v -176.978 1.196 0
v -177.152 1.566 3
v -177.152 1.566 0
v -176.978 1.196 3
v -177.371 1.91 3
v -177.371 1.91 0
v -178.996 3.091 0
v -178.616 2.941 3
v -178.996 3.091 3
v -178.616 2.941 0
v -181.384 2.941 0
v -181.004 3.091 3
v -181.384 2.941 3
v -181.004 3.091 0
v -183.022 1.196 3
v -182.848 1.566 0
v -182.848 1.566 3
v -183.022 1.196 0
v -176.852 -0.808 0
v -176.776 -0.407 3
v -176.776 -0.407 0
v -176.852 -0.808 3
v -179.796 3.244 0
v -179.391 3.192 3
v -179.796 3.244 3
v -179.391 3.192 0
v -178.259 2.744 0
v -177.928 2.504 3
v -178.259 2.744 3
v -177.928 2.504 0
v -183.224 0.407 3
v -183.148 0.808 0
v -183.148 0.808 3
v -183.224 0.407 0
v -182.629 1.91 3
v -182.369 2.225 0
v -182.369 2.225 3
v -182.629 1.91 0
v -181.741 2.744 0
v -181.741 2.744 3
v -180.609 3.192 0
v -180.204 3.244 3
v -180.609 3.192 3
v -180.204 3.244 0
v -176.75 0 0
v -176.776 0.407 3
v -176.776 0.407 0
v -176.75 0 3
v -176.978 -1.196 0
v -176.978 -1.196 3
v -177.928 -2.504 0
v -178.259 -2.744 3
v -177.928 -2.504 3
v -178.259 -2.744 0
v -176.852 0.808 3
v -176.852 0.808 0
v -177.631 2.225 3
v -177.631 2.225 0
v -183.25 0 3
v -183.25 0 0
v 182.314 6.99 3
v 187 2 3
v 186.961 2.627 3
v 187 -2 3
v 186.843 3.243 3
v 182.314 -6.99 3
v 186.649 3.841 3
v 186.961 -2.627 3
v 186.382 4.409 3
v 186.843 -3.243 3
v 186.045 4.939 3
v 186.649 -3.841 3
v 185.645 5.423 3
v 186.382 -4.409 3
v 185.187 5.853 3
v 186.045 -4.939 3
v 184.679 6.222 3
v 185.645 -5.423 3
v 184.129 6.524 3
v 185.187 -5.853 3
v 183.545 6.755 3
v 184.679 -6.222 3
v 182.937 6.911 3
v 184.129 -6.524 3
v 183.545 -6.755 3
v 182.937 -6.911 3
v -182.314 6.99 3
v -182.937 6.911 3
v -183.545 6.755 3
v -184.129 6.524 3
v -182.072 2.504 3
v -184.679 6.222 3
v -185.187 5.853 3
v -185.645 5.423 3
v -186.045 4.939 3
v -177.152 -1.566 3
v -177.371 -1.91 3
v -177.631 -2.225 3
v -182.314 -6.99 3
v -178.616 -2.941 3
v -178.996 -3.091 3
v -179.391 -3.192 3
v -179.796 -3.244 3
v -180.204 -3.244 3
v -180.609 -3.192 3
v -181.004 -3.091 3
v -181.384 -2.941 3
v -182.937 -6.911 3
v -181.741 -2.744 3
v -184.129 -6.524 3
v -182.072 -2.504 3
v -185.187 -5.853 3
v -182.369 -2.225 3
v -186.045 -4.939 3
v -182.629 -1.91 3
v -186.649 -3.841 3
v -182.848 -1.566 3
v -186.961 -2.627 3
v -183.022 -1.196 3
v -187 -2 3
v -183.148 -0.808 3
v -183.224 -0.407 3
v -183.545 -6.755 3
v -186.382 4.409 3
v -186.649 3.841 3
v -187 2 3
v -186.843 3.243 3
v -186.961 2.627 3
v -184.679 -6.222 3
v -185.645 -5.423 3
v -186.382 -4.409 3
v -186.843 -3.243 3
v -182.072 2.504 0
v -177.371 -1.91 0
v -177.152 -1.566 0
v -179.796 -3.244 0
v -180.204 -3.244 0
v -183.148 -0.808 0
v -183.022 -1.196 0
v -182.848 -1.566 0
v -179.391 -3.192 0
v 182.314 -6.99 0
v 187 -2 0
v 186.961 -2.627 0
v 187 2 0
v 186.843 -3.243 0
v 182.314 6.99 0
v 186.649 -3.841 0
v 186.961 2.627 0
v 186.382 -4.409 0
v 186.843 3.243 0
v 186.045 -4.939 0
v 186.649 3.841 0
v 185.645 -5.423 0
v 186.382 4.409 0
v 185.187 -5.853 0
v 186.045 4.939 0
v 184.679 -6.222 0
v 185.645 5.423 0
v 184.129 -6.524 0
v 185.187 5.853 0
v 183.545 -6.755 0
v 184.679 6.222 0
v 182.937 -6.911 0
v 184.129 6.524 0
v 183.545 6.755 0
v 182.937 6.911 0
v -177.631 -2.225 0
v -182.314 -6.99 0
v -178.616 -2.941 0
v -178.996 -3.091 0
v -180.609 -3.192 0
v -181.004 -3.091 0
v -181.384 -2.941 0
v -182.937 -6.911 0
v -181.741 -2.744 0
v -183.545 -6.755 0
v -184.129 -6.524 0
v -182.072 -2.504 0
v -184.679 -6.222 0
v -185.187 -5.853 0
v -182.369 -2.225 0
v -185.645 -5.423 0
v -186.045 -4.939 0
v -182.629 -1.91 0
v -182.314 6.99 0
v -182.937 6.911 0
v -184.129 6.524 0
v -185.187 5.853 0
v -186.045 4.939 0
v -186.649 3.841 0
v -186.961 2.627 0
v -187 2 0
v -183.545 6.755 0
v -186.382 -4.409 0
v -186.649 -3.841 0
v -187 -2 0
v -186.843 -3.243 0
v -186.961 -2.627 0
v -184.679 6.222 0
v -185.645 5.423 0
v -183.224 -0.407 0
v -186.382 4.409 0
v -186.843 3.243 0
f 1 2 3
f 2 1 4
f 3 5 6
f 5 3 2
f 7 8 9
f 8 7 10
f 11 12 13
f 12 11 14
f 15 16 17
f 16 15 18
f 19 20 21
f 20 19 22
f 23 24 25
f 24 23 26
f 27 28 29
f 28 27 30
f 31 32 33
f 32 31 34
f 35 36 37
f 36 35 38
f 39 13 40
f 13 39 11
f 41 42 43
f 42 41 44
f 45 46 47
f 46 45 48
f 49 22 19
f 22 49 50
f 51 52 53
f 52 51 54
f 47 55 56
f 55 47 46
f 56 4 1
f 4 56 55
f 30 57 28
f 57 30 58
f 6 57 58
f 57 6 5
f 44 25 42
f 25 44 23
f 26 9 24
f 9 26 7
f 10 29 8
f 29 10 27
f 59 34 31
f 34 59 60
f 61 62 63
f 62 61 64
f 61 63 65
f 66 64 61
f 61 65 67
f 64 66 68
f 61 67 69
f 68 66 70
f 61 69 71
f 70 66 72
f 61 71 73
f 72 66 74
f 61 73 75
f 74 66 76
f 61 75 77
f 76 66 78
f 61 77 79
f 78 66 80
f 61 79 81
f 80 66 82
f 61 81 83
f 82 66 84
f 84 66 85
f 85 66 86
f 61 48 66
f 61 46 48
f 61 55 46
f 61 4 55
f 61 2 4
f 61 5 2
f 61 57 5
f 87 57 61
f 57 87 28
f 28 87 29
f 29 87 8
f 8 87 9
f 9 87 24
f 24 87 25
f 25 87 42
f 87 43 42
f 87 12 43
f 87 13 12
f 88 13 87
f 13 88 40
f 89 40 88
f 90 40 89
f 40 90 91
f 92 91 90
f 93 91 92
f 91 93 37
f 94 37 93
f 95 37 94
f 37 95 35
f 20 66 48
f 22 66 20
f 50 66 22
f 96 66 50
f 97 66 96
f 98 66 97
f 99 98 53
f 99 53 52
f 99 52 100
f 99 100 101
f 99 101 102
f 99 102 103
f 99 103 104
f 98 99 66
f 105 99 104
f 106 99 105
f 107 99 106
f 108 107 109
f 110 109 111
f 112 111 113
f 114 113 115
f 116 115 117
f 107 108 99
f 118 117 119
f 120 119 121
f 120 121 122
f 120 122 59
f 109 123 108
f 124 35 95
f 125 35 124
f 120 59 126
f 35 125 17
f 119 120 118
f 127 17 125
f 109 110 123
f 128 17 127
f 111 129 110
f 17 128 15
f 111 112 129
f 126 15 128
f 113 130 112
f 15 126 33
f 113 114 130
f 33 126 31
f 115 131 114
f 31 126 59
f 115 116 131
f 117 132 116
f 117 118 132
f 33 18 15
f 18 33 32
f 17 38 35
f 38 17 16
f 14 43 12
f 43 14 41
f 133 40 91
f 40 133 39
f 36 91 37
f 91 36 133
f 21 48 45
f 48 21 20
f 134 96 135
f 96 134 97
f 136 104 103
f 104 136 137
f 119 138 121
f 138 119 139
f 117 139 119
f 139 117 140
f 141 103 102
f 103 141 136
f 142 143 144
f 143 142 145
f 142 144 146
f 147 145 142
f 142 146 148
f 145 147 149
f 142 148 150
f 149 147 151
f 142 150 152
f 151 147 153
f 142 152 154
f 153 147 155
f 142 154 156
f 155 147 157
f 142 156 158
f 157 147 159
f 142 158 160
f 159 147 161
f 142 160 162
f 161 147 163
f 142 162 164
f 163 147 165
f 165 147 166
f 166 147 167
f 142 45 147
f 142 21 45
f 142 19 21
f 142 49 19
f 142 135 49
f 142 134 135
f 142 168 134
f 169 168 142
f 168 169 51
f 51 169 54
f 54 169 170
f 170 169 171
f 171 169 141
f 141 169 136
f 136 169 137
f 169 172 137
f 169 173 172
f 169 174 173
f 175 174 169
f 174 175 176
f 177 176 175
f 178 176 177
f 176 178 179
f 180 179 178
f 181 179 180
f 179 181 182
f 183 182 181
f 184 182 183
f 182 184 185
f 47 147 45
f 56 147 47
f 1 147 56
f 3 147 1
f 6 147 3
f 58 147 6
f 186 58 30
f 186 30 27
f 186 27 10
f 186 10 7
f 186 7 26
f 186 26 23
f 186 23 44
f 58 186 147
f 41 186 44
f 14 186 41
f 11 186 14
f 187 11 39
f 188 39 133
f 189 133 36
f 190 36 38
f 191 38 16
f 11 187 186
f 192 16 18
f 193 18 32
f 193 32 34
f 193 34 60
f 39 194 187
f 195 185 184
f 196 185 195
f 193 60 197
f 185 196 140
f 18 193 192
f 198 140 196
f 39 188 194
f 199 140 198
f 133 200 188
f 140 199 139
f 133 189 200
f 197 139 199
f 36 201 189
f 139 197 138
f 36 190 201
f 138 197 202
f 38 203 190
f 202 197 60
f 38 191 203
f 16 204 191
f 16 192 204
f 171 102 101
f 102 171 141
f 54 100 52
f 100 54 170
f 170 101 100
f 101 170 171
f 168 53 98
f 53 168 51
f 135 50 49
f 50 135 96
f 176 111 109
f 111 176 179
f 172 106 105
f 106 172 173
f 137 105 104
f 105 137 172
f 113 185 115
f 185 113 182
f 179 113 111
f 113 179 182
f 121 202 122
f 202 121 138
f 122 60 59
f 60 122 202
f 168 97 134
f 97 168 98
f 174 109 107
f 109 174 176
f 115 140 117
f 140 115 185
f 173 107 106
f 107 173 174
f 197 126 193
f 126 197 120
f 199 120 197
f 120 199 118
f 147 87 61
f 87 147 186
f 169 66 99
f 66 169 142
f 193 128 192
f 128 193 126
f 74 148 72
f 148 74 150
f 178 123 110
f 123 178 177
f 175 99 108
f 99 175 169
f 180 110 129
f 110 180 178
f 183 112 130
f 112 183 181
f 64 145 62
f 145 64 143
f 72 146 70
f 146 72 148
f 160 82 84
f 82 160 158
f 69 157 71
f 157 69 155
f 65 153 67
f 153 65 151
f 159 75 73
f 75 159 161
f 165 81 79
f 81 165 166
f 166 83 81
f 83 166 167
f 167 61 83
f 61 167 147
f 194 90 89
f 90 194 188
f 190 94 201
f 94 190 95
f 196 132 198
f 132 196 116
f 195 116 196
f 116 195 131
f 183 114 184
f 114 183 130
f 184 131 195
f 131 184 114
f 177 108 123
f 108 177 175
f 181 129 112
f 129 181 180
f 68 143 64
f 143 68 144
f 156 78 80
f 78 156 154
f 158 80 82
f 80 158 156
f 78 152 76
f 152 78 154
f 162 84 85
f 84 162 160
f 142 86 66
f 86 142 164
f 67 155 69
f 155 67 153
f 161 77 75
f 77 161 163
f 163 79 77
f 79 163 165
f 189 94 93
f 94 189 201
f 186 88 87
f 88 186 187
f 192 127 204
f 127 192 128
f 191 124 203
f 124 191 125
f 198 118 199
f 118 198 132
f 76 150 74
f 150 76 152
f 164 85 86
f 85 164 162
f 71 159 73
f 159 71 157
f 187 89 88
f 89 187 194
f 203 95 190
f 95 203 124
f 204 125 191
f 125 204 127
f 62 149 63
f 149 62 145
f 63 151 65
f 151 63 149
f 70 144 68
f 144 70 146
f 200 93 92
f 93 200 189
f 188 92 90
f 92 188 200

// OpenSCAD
$fn = 50;


difference() {
	union() {
		hull() {
			translate(v = [-182.0000000000, 2.0000000000, 0]) {
				cylinder(h = 3, r = 5);
			}
			translate(v = [182.0000000000, 2.0000000000, 0]) {
				cylinder(h = 3, r = 5);
			}
			translate(v = [-182.0000000000, -2.0000000000, 0]) {
				cylinder(h = 3, r = 5);
			}
			translate(v = [182.0000000000, -2.0000000000, 0]) {
				cylinder(h = 3, r = 5);
			}
		}
	}
	union() {
		translate(v = [-180.0000000000, 0.0000000000, 0]) {
			cylinder(h = 3, r = 3.2500000000);
		}
		translate(v = [-180.0000000000, 0.0000000000, 0]) {
			cylinder(h = 3, r = 1.8000000000);
		}
		translate(v = [-180.0000000000, 0.0000000000, 0]) {
			cylinder(h = 3, r = 1.8000000000);
		}
		translate(v = [-180.0000000000, 0.0000000000, 0]) {
			cylinder(h = 3, r = 1.8000000000);
		}
	}
}
